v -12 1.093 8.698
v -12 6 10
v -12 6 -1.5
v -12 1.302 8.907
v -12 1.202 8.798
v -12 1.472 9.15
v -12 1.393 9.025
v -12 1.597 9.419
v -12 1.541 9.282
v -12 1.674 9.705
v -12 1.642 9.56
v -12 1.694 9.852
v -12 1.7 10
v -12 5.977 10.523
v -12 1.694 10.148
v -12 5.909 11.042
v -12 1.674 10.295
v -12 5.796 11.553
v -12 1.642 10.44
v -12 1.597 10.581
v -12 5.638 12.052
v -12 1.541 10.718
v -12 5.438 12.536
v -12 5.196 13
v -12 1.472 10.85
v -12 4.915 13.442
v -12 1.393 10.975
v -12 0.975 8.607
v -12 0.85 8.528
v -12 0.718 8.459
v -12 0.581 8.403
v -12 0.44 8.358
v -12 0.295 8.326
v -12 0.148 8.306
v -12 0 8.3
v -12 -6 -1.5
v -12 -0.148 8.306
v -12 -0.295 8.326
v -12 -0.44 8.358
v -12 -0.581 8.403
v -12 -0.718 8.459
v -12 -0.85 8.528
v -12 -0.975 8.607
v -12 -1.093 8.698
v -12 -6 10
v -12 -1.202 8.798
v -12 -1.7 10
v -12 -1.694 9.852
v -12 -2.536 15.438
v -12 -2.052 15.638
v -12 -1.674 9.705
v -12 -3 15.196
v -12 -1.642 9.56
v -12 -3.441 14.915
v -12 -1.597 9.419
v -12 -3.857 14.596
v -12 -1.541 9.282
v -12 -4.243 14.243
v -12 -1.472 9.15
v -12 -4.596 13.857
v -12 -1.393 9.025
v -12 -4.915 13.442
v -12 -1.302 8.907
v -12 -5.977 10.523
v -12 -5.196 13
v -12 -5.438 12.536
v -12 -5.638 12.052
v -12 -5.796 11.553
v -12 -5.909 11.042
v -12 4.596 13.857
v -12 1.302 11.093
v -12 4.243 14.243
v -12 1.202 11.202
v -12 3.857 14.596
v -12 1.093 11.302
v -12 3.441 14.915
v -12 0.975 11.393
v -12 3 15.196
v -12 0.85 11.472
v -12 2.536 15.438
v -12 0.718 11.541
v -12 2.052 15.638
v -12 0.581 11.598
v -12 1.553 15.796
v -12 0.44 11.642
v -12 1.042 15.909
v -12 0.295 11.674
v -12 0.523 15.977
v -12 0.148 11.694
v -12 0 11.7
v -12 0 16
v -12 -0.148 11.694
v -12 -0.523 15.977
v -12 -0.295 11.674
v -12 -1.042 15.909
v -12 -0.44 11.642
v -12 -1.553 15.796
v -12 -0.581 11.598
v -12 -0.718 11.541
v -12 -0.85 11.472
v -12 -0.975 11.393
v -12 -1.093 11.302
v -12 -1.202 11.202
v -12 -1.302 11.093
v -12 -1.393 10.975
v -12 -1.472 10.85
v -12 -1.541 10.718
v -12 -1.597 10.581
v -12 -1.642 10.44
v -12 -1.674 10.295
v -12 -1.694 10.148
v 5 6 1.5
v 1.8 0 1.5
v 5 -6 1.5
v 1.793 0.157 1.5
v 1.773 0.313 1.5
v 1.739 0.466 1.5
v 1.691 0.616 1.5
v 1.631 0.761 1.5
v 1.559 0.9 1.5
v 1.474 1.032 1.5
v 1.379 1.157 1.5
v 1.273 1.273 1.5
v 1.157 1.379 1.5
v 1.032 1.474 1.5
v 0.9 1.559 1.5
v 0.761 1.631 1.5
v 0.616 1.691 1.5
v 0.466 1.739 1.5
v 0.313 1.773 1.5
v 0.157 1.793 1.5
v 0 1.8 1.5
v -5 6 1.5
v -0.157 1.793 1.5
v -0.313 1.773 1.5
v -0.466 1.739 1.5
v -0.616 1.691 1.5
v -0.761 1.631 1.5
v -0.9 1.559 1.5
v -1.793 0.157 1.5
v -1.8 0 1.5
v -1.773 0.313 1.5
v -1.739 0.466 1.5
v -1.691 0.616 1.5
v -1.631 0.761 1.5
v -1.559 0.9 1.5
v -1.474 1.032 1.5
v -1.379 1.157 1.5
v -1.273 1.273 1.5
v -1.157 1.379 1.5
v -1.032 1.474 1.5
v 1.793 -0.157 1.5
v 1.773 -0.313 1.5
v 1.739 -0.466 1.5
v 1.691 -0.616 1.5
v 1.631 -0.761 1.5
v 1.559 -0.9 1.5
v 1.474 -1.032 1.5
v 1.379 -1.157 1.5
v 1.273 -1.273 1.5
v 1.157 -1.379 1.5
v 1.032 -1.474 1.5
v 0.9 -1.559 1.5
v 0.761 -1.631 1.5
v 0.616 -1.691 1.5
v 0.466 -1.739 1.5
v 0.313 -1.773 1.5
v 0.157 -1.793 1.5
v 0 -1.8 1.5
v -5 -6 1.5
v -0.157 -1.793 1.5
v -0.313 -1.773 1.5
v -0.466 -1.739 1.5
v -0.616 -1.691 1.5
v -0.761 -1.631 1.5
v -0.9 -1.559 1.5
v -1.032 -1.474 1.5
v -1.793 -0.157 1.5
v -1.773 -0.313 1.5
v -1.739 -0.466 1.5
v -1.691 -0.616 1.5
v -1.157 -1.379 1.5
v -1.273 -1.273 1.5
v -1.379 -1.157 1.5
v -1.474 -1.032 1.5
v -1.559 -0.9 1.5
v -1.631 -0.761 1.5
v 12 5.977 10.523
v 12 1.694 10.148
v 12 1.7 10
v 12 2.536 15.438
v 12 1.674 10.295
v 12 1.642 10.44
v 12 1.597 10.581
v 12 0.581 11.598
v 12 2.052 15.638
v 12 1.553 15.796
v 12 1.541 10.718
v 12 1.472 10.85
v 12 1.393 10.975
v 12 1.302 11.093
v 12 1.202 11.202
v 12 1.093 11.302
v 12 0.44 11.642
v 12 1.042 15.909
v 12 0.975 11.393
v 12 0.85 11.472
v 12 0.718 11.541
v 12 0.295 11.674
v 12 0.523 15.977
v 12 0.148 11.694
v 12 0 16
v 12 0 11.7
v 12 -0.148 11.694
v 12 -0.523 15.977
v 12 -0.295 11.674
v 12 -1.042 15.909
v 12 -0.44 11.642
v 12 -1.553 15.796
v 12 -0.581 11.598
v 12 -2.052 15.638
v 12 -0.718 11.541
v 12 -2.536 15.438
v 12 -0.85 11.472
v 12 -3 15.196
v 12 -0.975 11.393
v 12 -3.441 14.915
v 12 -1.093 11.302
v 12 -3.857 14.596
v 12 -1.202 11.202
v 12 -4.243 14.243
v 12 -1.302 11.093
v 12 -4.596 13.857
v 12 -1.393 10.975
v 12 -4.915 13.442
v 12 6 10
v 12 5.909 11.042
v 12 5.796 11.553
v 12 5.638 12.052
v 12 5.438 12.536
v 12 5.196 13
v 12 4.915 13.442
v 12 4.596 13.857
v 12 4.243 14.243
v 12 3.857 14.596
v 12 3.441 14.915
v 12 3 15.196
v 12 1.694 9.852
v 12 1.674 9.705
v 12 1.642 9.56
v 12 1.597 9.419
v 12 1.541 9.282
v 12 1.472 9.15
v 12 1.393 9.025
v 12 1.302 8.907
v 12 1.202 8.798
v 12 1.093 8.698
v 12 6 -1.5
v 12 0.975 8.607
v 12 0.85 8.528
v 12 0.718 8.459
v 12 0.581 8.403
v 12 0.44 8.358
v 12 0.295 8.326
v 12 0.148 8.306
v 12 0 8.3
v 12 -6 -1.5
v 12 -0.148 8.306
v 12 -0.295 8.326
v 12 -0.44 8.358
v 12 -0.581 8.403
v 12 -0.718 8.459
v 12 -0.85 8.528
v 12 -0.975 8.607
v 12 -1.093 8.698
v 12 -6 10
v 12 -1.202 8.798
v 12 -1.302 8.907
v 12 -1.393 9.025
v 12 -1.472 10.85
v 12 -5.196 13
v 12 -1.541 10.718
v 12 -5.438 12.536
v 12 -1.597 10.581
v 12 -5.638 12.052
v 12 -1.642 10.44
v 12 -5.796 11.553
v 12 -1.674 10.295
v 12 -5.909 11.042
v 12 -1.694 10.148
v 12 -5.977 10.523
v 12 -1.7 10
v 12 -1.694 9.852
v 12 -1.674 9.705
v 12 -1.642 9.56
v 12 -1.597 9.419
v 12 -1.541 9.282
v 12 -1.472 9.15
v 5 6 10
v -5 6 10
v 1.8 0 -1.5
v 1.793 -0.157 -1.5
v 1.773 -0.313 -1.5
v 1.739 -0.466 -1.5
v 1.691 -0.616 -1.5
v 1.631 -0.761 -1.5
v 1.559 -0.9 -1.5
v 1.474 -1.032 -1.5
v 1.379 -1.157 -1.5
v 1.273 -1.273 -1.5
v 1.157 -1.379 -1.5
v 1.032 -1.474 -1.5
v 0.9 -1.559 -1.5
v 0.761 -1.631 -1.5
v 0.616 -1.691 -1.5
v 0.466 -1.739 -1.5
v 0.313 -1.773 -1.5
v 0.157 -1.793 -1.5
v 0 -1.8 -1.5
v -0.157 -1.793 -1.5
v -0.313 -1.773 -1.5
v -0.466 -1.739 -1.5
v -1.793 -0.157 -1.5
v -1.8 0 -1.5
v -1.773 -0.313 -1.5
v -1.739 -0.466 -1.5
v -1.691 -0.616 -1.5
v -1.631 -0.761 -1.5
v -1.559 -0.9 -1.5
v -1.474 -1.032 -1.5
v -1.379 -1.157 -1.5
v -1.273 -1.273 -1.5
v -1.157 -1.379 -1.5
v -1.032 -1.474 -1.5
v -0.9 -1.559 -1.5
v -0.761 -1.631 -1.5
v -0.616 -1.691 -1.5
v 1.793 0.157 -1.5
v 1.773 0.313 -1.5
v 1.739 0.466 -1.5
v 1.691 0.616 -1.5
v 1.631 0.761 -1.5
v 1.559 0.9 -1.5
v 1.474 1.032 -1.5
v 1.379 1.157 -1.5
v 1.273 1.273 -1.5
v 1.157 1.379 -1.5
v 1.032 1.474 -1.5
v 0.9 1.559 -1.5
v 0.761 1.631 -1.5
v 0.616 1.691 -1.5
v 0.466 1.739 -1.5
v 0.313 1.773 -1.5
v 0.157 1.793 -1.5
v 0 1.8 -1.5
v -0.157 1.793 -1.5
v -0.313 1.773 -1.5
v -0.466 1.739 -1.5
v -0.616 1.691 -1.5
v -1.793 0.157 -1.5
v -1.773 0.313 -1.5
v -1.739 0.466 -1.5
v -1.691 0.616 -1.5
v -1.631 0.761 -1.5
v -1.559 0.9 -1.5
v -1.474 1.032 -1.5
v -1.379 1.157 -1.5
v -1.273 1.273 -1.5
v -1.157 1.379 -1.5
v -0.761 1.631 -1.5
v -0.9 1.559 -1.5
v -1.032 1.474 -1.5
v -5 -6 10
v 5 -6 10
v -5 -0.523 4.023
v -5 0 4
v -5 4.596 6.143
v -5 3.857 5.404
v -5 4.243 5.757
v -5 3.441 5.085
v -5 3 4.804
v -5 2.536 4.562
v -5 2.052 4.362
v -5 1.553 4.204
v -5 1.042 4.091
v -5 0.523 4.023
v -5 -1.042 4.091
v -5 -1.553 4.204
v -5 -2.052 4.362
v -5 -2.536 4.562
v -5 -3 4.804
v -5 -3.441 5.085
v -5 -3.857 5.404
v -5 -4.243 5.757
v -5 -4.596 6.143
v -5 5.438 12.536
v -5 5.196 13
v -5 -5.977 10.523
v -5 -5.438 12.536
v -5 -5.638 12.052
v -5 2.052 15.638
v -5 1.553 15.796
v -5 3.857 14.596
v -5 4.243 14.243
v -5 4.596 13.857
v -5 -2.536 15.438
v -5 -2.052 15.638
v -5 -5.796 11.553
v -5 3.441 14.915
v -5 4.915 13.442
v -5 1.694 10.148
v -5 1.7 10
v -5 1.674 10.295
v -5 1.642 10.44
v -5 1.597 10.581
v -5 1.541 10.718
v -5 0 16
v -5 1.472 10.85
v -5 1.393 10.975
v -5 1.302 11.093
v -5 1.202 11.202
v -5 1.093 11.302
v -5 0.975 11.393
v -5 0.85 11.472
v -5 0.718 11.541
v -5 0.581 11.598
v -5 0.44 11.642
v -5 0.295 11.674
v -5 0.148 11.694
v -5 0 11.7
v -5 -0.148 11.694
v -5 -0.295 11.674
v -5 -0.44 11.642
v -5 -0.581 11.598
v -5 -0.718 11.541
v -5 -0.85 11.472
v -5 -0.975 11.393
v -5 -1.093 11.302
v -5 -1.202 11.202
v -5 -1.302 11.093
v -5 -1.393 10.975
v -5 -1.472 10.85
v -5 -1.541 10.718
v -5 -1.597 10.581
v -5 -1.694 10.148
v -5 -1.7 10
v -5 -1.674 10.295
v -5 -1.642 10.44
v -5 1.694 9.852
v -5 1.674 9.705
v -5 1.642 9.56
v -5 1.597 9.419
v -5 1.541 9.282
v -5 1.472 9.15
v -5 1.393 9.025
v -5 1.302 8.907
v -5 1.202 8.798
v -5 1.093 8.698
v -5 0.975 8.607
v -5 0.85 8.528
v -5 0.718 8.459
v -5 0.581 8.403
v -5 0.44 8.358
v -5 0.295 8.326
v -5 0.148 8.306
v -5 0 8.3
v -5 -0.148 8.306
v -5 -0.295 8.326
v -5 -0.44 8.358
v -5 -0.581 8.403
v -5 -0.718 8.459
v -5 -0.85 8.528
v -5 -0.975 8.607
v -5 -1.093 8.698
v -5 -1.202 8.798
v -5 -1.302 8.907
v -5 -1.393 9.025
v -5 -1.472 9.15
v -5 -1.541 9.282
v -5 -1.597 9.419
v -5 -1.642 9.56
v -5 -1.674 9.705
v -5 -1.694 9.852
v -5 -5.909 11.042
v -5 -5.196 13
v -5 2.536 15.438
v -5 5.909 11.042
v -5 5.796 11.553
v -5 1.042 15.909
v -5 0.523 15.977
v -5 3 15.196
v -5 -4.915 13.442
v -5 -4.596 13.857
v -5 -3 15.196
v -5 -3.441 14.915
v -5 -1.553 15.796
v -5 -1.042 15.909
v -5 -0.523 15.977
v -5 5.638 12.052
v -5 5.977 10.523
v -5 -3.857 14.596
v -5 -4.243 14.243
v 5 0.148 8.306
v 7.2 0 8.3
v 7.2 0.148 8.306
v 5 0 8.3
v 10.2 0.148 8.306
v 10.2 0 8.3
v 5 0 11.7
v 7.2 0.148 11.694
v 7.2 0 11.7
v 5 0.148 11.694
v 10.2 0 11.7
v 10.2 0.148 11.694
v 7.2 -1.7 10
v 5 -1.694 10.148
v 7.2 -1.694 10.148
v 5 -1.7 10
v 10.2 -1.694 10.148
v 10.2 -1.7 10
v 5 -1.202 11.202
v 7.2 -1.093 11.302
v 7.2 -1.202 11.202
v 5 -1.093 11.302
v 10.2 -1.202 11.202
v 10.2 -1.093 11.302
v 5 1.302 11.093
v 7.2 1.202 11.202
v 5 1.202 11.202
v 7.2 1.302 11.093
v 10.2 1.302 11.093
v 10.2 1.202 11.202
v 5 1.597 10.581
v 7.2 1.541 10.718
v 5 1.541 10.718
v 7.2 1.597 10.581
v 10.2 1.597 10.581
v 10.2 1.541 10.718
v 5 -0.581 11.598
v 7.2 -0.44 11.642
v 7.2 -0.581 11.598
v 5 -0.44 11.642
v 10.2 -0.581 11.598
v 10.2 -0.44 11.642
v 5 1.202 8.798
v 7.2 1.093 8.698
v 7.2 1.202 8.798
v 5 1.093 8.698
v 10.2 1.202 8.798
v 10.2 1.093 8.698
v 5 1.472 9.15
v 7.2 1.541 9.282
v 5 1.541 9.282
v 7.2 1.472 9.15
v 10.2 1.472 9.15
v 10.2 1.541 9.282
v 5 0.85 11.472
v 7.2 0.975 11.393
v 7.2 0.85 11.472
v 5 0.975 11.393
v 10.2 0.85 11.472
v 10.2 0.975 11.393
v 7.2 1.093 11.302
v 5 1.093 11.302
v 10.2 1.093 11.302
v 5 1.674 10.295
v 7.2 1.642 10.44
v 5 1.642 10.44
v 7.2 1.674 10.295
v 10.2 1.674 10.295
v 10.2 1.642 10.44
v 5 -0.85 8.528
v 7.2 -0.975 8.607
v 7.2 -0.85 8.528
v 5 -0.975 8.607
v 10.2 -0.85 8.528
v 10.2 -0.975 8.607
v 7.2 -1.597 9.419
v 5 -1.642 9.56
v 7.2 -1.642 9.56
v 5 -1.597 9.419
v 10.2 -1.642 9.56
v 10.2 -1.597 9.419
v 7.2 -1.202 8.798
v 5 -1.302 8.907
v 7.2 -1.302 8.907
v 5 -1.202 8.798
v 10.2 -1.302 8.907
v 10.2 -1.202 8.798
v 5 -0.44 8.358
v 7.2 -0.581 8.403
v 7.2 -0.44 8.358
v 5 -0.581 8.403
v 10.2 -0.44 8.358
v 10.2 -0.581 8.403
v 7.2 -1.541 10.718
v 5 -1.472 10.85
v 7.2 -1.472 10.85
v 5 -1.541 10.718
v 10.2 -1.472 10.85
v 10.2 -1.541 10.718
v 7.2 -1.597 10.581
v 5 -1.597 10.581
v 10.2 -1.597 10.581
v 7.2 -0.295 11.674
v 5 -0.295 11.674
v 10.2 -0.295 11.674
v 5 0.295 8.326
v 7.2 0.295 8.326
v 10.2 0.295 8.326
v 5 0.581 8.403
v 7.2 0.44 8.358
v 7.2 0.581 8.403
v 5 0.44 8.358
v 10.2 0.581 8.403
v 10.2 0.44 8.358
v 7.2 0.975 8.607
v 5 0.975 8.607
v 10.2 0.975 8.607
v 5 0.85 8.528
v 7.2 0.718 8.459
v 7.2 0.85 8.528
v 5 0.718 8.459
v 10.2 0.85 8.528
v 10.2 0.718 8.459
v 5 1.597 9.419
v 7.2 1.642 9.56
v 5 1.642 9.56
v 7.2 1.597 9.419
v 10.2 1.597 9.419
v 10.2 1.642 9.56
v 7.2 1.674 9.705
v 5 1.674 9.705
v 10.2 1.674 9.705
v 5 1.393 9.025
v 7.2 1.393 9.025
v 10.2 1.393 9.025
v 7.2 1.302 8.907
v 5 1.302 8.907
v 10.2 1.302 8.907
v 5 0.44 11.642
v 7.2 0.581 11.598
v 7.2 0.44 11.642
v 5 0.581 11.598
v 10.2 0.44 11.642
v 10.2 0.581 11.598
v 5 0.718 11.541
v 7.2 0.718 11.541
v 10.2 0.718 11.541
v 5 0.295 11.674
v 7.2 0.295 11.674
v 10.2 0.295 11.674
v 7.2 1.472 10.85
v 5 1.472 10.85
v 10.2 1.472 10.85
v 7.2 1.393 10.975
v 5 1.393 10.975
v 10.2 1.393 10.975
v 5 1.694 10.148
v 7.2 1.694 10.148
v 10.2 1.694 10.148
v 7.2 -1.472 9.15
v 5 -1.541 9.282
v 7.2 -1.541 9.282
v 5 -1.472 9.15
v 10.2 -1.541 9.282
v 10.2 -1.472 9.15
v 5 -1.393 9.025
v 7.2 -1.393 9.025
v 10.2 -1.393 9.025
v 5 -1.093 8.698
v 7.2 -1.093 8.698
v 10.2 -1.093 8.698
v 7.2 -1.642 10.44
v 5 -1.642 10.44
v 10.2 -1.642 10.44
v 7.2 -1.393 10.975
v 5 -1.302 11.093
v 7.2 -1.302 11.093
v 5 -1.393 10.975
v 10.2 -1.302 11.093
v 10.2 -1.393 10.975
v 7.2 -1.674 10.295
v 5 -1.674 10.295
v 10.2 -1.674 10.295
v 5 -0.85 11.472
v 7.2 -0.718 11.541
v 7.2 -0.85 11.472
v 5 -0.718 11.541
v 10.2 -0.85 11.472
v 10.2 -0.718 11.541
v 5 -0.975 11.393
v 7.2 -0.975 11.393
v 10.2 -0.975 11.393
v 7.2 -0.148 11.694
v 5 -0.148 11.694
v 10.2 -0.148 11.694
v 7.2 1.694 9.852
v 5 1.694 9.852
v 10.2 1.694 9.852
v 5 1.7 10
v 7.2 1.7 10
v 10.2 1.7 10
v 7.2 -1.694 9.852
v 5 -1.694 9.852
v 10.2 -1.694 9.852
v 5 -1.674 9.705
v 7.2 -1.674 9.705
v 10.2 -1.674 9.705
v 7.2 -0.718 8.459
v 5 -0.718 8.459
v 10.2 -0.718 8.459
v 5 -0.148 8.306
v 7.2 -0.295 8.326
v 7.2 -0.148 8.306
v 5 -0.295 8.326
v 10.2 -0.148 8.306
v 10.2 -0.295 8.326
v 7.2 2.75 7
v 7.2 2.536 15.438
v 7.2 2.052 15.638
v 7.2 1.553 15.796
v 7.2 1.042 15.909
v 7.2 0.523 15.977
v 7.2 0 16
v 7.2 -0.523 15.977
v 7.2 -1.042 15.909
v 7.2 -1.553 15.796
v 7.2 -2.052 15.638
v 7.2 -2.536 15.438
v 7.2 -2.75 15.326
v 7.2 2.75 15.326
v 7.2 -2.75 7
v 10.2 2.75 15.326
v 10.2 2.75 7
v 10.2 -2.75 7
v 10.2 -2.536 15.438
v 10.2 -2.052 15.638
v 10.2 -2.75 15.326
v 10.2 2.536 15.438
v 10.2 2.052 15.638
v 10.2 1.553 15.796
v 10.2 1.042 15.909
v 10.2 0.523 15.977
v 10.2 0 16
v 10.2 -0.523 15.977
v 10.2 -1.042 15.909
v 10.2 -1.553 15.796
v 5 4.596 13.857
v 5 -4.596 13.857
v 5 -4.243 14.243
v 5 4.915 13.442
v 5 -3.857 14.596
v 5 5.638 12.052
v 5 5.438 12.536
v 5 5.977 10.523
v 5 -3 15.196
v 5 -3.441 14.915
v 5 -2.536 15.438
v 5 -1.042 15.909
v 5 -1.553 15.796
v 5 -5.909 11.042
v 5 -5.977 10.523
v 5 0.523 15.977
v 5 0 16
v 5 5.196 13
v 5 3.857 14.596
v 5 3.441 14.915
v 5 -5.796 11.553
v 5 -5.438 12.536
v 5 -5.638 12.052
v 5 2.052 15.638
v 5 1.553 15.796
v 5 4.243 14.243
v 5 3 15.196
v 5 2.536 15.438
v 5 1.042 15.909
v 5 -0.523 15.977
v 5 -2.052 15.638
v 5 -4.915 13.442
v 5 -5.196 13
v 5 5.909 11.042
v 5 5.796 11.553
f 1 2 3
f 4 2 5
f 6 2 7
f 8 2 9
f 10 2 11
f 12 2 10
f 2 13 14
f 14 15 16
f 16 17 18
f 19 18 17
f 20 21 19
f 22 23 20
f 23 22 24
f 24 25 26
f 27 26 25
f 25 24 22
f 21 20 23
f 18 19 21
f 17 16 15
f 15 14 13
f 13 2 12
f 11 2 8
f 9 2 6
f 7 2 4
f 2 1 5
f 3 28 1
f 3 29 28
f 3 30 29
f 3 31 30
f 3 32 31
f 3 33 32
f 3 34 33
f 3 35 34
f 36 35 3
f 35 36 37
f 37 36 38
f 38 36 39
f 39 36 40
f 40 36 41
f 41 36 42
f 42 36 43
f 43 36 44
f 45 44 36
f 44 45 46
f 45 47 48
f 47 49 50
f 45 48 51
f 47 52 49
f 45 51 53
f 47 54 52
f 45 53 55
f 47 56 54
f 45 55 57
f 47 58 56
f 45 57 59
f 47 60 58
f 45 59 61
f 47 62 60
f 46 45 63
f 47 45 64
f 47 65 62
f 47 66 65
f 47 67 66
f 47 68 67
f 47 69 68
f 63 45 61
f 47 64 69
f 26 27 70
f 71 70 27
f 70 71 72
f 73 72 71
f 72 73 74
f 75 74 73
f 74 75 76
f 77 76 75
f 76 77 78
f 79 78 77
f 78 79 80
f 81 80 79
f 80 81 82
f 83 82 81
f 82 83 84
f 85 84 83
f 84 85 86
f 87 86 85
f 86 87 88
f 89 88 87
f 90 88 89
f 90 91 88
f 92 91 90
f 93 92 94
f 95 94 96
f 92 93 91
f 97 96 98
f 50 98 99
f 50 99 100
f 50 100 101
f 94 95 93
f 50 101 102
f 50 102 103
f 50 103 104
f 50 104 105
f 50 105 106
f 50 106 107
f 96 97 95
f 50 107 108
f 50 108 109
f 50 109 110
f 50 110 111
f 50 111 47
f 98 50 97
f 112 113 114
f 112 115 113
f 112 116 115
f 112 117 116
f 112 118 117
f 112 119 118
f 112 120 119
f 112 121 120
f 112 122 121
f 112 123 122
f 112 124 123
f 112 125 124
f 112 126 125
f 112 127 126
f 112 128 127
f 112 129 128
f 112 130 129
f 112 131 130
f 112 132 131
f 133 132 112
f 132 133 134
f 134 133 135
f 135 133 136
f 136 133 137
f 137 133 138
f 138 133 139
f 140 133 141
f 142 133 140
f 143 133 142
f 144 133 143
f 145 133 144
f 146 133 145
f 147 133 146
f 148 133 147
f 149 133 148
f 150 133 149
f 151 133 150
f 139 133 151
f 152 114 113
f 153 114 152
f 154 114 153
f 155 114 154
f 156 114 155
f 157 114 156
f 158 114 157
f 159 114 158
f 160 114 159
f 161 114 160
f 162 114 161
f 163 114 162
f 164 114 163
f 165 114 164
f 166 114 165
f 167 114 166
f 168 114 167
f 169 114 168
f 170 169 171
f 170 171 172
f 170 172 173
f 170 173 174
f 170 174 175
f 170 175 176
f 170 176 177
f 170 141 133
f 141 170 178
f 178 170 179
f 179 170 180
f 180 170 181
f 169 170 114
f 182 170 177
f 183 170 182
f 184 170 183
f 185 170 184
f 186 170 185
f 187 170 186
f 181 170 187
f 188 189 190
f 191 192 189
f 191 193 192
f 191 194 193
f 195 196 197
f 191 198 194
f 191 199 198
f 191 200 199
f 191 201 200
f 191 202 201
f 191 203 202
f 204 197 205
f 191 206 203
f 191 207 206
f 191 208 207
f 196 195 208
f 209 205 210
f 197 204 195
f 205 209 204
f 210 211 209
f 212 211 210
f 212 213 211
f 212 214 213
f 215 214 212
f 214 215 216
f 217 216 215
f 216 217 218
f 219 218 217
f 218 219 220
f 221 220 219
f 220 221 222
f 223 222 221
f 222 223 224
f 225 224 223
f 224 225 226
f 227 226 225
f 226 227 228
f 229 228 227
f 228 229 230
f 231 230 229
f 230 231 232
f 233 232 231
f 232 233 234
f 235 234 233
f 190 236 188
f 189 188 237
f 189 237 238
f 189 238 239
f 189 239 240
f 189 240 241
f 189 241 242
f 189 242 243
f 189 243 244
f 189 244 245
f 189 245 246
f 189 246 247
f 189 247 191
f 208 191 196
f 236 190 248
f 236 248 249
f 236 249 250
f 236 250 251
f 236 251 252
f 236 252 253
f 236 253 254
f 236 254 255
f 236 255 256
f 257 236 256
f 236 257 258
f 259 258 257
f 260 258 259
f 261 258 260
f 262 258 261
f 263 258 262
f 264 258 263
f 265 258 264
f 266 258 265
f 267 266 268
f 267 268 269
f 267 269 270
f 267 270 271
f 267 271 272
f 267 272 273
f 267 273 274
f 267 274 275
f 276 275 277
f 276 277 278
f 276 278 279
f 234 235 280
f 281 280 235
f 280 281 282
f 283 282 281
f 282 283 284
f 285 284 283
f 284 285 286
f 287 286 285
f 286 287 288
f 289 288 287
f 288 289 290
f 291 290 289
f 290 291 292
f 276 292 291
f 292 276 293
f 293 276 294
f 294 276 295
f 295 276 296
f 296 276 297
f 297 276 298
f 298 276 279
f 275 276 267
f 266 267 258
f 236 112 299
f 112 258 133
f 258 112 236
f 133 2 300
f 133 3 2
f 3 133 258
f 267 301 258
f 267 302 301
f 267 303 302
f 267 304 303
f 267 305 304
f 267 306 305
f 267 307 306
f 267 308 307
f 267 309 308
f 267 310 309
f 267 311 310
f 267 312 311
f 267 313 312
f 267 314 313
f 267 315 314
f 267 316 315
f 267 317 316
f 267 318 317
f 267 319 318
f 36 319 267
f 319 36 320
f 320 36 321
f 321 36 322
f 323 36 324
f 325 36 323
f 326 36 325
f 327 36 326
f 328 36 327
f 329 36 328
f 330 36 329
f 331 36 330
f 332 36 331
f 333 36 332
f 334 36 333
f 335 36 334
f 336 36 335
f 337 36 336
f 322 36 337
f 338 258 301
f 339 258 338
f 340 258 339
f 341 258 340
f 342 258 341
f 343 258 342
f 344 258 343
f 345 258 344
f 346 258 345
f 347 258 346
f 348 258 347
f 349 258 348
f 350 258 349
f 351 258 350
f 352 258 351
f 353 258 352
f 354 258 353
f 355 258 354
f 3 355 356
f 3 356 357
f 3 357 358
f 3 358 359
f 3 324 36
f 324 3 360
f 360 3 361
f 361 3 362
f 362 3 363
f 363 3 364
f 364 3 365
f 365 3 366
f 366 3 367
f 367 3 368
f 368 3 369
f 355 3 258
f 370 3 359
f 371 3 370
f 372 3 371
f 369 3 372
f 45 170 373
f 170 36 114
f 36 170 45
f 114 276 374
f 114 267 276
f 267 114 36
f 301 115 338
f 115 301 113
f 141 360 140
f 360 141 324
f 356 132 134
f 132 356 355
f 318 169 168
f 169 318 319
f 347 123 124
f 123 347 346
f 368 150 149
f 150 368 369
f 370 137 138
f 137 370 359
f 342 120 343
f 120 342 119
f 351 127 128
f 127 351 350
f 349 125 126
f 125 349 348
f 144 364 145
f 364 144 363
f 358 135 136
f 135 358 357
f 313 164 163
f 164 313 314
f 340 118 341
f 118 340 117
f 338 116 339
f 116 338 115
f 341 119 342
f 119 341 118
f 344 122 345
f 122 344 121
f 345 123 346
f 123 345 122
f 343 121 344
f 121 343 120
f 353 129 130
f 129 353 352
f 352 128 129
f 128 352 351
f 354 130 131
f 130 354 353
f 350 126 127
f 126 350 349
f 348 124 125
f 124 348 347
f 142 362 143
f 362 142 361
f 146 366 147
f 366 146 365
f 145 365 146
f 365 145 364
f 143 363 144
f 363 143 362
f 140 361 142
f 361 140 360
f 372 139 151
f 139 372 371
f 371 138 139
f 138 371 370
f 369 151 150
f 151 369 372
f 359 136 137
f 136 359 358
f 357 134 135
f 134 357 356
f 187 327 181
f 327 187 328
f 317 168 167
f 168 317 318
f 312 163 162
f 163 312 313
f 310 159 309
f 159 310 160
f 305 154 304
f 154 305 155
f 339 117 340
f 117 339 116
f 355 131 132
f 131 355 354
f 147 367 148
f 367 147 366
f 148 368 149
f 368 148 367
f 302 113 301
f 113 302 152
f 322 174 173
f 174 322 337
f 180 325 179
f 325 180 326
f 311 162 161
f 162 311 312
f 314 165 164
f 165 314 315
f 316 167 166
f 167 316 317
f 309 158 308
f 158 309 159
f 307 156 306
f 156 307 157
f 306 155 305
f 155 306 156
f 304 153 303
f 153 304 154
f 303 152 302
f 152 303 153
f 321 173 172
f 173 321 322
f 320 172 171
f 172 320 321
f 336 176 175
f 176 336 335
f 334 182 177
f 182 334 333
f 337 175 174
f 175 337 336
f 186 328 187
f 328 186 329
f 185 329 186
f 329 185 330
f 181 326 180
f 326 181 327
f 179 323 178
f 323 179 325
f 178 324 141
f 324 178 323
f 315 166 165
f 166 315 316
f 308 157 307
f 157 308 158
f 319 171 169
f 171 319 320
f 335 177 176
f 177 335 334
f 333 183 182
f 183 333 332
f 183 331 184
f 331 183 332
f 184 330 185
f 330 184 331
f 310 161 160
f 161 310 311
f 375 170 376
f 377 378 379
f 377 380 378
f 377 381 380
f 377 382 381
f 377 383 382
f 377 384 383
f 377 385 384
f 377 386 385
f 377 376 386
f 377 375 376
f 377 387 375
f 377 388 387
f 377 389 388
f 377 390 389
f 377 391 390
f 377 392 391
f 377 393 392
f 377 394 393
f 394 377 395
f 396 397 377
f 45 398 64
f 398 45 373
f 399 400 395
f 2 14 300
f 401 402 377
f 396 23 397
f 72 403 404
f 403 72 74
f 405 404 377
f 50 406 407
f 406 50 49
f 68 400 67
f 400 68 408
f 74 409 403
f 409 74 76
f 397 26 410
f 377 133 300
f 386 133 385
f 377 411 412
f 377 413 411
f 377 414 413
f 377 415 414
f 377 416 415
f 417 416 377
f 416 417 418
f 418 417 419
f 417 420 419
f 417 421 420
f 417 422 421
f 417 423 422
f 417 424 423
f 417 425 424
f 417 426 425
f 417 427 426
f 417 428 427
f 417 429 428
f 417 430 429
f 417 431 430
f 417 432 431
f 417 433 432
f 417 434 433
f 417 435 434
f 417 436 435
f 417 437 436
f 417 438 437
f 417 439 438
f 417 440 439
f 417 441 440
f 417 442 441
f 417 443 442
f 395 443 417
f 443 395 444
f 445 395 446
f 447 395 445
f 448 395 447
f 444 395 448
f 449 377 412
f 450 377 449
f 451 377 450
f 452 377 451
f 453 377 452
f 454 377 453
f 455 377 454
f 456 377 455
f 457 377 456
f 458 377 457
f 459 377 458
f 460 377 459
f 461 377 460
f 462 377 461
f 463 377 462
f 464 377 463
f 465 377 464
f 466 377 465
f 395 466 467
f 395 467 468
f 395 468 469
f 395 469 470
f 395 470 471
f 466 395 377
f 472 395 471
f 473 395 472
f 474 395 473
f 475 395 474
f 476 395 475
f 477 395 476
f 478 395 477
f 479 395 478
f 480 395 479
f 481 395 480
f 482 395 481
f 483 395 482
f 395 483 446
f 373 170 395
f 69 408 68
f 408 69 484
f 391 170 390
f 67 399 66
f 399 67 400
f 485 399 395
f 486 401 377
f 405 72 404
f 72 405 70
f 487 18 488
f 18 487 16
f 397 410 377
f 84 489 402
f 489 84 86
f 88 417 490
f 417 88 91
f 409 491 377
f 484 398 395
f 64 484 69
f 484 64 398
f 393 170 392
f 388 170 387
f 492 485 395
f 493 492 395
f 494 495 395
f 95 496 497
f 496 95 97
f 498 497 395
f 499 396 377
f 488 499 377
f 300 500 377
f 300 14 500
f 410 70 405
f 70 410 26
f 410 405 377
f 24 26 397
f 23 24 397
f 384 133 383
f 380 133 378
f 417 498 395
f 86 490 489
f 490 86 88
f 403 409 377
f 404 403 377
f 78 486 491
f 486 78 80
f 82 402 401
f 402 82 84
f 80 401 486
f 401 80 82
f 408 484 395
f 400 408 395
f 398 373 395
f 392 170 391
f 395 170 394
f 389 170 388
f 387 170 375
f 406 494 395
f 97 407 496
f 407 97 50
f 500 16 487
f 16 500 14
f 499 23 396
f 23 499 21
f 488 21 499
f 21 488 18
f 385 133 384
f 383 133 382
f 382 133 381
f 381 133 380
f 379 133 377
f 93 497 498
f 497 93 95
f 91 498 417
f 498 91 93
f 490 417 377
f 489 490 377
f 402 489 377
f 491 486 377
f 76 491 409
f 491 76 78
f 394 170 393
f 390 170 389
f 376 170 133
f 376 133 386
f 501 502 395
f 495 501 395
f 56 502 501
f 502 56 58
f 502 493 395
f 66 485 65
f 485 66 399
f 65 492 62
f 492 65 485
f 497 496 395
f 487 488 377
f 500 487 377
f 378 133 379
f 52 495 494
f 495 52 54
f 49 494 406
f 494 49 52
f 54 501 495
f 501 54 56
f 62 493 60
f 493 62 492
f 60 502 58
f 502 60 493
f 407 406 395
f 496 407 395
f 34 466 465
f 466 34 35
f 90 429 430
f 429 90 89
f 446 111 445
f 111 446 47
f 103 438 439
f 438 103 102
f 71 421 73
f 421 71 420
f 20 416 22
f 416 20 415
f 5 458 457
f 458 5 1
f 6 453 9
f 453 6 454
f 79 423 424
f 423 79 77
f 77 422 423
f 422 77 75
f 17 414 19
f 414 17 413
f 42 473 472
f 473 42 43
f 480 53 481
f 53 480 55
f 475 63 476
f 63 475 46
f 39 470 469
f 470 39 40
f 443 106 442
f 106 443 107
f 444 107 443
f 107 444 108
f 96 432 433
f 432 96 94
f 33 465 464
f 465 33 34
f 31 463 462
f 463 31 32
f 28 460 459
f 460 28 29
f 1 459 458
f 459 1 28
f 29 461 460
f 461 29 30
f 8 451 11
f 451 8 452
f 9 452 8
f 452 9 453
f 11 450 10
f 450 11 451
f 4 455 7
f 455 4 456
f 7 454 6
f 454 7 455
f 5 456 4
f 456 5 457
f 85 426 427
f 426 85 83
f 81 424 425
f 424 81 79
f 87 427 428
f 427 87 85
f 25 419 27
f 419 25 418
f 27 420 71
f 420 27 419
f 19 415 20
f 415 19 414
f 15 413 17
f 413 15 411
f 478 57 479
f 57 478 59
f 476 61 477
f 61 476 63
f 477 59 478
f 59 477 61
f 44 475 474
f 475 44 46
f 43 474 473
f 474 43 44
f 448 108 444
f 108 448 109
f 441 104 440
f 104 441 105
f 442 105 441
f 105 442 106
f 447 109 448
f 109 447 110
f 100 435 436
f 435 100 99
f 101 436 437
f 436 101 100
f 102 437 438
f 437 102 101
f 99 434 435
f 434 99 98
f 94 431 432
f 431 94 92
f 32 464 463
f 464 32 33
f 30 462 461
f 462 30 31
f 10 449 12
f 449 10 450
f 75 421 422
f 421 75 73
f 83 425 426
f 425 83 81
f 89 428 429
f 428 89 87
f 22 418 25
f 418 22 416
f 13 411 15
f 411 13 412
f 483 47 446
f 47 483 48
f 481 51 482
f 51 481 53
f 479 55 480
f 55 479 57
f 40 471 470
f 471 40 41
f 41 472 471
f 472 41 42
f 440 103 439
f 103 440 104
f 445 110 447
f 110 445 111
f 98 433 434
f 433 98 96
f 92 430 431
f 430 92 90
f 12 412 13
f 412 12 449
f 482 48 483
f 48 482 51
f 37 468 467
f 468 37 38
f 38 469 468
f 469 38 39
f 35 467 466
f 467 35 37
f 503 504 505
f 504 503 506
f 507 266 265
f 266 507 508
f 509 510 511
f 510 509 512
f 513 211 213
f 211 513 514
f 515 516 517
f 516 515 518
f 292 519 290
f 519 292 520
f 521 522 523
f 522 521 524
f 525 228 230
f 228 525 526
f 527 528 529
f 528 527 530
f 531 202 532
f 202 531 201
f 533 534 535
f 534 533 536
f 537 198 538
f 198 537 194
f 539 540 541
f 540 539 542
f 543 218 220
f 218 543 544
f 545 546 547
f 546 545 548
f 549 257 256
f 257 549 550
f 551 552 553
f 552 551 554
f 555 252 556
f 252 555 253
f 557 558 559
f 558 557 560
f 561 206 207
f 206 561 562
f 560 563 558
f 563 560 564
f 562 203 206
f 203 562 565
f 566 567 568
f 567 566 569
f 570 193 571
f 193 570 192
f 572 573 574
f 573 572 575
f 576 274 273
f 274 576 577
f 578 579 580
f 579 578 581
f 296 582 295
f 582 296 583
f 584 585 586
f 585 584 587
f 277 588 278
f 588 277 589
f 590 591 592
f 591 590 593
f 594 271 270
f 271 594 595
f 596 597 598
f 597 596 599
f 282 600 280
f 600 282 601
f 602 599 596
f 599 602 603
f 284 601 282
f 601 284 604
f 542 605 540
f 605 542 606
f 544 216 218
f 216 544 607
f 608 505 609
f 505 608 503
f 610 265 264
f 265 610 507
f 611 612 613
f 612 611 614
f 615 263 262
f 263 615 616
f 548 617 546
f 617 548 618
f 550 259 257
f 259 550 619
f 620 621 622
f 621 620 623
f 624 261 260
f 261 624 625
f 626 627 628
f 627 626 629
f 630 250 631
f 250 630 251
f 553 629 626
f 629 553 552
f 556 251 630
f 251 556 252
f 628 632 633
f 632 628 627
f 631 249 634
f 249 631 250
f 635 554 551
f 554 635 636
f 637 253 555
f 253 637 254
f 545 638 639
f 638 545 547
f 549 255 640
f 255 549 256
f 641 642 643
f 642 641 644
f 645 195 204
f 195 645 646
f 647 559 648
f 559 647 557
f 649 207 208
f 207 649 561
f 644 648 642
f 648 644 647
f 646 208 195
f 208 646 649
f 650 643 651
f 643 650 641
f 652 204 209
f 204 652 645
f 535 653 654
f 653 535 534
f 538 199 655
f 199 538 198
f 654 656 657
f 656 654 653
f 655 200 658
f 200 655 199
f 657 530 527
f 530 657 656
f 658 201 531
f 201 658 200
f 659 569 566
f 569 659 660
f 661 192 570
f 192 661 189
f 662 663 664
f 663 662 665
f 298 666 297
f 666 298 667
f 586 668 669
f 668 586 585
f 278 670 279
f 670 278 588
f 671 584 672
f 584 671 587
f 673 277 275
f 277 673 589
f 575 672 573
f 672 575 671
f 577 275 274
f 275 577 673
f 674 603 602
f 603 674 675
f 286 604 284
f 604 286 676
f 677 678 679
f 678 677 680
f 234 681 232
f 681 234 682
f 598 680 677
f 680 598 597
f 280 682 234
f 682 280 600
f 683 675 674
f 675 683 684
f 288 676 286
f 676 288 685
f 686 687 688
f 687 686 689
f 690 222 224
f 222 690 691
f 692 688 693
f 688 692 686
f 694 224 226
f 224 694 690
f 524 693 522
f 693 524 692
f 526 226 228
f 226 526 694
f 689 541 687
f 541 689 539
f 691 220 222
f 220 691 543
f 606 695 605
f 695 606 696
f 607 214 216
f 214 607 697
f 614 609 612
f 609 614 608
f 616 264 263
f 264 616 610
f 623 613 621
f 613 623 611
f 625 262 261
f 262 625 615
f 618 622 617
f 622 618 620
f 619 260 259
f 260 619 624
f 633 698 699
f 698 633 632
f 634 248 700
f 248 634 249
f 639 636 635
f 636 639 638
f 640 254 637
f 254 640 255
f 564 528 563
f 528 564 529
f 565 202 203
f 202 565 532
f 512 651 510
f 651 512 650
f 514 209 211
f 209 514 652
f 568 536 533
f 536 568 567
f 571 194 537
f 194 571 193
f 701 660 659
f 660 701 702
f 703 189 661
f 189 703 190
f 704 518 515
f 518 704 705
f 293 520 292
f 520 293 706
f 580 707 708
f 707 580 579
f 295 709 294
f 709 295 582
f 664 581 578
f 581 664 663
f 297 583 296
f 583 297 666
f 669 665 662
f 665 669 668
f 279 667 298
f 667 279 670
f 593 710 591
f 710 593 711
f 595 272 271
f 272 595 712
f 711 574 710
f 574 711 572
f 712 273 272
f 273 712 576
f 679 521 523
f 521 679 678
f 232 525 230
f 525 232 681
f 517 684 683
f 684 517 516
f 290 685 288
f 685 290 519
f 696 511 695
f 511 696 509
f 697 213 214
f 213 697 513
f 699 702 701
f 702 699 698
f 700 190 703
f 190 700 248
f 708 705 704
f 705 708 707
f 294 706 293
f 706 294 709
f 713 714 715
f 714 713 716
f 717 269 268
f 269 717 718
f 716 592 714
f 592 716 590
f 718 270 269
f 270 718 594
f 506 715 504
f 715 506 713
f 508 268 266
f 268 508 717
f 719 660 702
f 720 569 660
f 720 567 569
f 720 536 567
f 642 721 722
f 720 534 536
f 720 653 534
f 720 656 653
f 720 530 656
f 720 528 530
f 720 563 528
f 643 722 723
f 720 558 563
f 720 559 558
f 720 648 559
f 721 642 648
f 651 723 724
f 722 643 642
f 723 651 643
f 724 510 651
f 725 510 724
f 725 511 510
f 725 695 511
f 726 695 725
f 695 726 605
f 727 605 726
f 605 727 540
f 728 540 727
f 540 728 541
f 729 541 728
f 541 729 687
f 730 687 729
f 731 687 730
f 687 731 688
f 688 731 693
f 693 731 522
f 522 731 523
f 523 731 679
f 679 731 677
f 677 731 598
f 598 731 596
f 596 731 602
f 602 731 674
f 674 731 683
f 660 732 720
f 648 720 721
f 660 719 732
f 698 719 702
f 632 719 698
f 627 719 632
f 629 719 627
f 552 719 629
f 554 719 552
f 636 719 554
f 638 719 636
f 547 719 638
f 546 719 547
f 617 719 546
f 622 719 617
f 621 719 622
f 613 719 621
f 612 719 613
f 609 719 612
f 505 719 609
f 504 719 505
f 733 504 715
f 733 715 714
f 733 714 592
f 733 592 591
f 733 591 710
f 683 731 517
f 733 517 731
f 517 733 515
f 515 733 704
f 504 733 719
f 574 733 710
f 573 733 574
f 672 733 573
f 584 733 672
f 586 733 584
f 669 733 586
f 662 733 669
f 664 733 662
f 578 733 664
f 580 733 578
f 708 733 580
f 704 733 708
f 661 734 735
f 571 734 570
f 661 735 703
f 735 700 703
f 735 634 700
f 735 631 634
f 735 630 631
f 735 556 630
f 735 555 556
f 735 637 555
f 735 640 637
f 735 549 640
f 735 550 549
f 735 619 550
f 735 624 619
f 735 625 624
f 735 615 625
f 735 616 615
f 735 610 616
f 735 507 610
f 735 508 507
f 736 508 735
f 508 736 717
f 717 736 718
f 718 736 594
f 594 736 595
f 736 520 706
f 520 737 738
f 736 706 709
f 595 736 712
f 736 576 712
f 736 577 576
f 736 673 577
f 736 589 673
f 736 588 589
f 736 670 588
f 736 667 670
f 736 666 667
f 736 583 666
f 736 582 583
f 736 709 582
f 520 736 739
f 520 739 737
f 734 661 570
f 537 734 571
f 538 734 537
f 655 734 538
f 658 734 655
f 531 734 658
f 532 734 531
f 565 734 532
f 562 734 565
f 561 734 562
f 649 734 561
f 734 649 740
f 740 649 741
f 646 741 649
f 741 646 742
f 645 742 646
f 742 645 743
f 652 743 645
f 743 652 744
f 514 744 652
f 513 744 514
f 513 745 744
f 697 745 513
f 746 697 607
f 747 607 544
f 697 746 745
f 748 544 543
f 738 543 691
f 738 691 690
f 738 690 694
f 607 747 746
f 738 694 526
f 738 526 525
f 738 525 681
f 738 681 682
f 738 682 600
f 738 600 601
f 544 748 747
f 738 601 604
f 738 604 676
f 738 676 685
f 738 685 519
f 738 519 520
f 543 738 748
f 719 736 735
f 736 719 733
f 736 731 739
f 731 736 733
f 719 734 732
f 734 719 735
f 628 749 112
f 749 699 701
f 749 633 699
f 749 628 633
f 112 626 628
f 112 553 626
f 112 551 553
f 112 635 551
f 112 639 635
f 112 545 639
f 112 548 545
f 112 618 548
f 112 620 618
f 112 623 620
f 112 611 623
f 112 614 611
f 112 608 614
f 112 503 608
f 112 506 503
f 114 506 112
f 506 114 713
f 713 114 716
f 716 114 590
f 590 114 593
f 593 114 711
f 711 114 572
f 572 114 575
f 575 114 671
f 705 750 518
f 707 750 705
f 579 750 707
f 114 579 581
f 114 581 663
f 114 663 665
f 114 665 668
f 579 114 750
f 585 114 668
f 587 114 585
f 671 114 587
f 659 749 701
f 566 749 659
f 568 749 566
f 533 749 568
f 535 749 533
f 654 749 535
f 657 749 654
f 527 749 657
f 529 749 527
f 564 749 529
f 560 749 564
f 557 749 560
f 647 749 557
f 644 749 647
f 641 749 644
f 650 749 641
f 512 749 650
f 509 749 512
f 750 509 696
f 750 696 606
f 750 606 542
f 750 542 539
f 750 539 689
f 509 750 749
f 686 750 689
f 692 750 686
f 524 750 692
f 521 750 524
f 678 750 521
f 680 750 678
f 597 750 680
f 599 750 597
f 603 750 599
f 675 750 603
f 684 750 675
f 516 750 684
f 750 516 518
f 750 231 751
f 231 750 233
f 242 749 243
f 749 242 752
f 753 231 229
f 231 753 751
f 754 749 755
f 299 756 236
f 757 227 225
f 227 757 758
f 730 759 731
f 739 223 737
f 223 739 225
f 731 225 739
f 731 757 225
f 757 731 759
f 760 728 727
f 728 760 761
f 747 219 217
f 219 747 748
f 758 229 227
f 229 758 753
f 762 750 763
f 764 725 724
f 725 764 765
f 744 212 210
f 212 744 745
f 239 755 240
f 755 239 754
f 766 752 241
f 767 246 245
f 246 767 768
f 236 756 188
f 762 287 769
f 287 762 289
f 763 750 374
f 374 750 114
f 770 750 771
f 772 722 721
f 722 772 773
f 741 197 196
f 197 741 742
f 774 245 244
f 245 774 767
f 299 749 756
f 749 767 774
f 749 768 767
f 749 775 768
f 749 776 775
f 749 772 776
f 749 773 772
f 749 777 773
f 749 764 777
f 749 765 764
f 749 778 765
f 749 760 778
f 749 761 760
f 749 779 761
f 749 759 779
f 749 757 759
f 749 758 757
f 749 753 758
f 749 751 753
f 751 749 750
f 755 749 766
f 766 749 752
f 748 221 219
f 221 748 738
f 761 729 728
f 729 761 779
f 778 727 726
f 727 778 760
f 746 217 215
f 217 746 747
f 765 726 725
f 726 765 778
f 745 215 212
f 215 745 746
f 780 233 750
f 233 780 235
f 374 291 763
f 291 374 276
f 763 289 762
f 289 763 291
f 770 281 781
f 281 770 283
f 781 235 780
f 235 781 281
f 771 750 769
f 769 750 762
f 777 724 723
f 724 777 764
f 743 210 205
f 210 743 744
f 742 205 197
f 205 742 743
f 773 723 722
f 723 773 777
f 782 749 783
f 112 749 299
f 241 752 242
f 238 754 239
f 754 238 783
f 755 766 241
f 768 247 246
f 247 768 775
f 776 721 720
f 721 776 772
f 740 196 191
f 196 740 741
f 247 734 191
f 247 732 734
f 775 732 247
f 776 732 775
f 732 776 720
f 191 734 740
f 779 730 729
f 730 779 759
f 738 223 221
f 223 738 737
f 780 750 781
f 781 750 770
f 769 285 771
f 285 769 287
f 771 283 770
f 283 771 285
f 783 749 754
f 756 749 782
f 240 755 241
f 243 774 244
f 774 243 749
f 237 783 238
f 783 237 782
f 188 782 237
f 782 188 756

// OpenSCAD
$fa=5; $fs=0.1;

//base
difference(){
    cube([24, 12, 3], center=true); 
    cylinder(h=3.01, r=1.8, center=true);
}

//top
difference(){
    hull(){
        translate([-8.5, 0, 10]) rotate([0, 90, 0]) cylinder(h=7, r=6, center=true);
        translate([-8.5, 0, 2]) cube([7, 12, 1], center=true); 
        }   
    translate([-8.5, 0, 10]) rotate([0, 90, 0]) cylinder(h=7.01, r=1.7, center=true);
    }

//bottom-nut
difference(){
    hull(){
        translate([8.5, 0, 10]) rotate([0, 90, 0]) cylinder(h=7, r=6, center=true);
        translate([8.5, 0, 2]) cube([7, 12, 1], center=true); 
        }   
    union(){
        translate([8.5, 0, 10]) rotate([0, 90, 0]) cylinder(h=7.01, r=1.7, center=true);
        
        translate([8.7, 0, 11.5]) cube([3, 5.5, 9], center=true);
    }
}
